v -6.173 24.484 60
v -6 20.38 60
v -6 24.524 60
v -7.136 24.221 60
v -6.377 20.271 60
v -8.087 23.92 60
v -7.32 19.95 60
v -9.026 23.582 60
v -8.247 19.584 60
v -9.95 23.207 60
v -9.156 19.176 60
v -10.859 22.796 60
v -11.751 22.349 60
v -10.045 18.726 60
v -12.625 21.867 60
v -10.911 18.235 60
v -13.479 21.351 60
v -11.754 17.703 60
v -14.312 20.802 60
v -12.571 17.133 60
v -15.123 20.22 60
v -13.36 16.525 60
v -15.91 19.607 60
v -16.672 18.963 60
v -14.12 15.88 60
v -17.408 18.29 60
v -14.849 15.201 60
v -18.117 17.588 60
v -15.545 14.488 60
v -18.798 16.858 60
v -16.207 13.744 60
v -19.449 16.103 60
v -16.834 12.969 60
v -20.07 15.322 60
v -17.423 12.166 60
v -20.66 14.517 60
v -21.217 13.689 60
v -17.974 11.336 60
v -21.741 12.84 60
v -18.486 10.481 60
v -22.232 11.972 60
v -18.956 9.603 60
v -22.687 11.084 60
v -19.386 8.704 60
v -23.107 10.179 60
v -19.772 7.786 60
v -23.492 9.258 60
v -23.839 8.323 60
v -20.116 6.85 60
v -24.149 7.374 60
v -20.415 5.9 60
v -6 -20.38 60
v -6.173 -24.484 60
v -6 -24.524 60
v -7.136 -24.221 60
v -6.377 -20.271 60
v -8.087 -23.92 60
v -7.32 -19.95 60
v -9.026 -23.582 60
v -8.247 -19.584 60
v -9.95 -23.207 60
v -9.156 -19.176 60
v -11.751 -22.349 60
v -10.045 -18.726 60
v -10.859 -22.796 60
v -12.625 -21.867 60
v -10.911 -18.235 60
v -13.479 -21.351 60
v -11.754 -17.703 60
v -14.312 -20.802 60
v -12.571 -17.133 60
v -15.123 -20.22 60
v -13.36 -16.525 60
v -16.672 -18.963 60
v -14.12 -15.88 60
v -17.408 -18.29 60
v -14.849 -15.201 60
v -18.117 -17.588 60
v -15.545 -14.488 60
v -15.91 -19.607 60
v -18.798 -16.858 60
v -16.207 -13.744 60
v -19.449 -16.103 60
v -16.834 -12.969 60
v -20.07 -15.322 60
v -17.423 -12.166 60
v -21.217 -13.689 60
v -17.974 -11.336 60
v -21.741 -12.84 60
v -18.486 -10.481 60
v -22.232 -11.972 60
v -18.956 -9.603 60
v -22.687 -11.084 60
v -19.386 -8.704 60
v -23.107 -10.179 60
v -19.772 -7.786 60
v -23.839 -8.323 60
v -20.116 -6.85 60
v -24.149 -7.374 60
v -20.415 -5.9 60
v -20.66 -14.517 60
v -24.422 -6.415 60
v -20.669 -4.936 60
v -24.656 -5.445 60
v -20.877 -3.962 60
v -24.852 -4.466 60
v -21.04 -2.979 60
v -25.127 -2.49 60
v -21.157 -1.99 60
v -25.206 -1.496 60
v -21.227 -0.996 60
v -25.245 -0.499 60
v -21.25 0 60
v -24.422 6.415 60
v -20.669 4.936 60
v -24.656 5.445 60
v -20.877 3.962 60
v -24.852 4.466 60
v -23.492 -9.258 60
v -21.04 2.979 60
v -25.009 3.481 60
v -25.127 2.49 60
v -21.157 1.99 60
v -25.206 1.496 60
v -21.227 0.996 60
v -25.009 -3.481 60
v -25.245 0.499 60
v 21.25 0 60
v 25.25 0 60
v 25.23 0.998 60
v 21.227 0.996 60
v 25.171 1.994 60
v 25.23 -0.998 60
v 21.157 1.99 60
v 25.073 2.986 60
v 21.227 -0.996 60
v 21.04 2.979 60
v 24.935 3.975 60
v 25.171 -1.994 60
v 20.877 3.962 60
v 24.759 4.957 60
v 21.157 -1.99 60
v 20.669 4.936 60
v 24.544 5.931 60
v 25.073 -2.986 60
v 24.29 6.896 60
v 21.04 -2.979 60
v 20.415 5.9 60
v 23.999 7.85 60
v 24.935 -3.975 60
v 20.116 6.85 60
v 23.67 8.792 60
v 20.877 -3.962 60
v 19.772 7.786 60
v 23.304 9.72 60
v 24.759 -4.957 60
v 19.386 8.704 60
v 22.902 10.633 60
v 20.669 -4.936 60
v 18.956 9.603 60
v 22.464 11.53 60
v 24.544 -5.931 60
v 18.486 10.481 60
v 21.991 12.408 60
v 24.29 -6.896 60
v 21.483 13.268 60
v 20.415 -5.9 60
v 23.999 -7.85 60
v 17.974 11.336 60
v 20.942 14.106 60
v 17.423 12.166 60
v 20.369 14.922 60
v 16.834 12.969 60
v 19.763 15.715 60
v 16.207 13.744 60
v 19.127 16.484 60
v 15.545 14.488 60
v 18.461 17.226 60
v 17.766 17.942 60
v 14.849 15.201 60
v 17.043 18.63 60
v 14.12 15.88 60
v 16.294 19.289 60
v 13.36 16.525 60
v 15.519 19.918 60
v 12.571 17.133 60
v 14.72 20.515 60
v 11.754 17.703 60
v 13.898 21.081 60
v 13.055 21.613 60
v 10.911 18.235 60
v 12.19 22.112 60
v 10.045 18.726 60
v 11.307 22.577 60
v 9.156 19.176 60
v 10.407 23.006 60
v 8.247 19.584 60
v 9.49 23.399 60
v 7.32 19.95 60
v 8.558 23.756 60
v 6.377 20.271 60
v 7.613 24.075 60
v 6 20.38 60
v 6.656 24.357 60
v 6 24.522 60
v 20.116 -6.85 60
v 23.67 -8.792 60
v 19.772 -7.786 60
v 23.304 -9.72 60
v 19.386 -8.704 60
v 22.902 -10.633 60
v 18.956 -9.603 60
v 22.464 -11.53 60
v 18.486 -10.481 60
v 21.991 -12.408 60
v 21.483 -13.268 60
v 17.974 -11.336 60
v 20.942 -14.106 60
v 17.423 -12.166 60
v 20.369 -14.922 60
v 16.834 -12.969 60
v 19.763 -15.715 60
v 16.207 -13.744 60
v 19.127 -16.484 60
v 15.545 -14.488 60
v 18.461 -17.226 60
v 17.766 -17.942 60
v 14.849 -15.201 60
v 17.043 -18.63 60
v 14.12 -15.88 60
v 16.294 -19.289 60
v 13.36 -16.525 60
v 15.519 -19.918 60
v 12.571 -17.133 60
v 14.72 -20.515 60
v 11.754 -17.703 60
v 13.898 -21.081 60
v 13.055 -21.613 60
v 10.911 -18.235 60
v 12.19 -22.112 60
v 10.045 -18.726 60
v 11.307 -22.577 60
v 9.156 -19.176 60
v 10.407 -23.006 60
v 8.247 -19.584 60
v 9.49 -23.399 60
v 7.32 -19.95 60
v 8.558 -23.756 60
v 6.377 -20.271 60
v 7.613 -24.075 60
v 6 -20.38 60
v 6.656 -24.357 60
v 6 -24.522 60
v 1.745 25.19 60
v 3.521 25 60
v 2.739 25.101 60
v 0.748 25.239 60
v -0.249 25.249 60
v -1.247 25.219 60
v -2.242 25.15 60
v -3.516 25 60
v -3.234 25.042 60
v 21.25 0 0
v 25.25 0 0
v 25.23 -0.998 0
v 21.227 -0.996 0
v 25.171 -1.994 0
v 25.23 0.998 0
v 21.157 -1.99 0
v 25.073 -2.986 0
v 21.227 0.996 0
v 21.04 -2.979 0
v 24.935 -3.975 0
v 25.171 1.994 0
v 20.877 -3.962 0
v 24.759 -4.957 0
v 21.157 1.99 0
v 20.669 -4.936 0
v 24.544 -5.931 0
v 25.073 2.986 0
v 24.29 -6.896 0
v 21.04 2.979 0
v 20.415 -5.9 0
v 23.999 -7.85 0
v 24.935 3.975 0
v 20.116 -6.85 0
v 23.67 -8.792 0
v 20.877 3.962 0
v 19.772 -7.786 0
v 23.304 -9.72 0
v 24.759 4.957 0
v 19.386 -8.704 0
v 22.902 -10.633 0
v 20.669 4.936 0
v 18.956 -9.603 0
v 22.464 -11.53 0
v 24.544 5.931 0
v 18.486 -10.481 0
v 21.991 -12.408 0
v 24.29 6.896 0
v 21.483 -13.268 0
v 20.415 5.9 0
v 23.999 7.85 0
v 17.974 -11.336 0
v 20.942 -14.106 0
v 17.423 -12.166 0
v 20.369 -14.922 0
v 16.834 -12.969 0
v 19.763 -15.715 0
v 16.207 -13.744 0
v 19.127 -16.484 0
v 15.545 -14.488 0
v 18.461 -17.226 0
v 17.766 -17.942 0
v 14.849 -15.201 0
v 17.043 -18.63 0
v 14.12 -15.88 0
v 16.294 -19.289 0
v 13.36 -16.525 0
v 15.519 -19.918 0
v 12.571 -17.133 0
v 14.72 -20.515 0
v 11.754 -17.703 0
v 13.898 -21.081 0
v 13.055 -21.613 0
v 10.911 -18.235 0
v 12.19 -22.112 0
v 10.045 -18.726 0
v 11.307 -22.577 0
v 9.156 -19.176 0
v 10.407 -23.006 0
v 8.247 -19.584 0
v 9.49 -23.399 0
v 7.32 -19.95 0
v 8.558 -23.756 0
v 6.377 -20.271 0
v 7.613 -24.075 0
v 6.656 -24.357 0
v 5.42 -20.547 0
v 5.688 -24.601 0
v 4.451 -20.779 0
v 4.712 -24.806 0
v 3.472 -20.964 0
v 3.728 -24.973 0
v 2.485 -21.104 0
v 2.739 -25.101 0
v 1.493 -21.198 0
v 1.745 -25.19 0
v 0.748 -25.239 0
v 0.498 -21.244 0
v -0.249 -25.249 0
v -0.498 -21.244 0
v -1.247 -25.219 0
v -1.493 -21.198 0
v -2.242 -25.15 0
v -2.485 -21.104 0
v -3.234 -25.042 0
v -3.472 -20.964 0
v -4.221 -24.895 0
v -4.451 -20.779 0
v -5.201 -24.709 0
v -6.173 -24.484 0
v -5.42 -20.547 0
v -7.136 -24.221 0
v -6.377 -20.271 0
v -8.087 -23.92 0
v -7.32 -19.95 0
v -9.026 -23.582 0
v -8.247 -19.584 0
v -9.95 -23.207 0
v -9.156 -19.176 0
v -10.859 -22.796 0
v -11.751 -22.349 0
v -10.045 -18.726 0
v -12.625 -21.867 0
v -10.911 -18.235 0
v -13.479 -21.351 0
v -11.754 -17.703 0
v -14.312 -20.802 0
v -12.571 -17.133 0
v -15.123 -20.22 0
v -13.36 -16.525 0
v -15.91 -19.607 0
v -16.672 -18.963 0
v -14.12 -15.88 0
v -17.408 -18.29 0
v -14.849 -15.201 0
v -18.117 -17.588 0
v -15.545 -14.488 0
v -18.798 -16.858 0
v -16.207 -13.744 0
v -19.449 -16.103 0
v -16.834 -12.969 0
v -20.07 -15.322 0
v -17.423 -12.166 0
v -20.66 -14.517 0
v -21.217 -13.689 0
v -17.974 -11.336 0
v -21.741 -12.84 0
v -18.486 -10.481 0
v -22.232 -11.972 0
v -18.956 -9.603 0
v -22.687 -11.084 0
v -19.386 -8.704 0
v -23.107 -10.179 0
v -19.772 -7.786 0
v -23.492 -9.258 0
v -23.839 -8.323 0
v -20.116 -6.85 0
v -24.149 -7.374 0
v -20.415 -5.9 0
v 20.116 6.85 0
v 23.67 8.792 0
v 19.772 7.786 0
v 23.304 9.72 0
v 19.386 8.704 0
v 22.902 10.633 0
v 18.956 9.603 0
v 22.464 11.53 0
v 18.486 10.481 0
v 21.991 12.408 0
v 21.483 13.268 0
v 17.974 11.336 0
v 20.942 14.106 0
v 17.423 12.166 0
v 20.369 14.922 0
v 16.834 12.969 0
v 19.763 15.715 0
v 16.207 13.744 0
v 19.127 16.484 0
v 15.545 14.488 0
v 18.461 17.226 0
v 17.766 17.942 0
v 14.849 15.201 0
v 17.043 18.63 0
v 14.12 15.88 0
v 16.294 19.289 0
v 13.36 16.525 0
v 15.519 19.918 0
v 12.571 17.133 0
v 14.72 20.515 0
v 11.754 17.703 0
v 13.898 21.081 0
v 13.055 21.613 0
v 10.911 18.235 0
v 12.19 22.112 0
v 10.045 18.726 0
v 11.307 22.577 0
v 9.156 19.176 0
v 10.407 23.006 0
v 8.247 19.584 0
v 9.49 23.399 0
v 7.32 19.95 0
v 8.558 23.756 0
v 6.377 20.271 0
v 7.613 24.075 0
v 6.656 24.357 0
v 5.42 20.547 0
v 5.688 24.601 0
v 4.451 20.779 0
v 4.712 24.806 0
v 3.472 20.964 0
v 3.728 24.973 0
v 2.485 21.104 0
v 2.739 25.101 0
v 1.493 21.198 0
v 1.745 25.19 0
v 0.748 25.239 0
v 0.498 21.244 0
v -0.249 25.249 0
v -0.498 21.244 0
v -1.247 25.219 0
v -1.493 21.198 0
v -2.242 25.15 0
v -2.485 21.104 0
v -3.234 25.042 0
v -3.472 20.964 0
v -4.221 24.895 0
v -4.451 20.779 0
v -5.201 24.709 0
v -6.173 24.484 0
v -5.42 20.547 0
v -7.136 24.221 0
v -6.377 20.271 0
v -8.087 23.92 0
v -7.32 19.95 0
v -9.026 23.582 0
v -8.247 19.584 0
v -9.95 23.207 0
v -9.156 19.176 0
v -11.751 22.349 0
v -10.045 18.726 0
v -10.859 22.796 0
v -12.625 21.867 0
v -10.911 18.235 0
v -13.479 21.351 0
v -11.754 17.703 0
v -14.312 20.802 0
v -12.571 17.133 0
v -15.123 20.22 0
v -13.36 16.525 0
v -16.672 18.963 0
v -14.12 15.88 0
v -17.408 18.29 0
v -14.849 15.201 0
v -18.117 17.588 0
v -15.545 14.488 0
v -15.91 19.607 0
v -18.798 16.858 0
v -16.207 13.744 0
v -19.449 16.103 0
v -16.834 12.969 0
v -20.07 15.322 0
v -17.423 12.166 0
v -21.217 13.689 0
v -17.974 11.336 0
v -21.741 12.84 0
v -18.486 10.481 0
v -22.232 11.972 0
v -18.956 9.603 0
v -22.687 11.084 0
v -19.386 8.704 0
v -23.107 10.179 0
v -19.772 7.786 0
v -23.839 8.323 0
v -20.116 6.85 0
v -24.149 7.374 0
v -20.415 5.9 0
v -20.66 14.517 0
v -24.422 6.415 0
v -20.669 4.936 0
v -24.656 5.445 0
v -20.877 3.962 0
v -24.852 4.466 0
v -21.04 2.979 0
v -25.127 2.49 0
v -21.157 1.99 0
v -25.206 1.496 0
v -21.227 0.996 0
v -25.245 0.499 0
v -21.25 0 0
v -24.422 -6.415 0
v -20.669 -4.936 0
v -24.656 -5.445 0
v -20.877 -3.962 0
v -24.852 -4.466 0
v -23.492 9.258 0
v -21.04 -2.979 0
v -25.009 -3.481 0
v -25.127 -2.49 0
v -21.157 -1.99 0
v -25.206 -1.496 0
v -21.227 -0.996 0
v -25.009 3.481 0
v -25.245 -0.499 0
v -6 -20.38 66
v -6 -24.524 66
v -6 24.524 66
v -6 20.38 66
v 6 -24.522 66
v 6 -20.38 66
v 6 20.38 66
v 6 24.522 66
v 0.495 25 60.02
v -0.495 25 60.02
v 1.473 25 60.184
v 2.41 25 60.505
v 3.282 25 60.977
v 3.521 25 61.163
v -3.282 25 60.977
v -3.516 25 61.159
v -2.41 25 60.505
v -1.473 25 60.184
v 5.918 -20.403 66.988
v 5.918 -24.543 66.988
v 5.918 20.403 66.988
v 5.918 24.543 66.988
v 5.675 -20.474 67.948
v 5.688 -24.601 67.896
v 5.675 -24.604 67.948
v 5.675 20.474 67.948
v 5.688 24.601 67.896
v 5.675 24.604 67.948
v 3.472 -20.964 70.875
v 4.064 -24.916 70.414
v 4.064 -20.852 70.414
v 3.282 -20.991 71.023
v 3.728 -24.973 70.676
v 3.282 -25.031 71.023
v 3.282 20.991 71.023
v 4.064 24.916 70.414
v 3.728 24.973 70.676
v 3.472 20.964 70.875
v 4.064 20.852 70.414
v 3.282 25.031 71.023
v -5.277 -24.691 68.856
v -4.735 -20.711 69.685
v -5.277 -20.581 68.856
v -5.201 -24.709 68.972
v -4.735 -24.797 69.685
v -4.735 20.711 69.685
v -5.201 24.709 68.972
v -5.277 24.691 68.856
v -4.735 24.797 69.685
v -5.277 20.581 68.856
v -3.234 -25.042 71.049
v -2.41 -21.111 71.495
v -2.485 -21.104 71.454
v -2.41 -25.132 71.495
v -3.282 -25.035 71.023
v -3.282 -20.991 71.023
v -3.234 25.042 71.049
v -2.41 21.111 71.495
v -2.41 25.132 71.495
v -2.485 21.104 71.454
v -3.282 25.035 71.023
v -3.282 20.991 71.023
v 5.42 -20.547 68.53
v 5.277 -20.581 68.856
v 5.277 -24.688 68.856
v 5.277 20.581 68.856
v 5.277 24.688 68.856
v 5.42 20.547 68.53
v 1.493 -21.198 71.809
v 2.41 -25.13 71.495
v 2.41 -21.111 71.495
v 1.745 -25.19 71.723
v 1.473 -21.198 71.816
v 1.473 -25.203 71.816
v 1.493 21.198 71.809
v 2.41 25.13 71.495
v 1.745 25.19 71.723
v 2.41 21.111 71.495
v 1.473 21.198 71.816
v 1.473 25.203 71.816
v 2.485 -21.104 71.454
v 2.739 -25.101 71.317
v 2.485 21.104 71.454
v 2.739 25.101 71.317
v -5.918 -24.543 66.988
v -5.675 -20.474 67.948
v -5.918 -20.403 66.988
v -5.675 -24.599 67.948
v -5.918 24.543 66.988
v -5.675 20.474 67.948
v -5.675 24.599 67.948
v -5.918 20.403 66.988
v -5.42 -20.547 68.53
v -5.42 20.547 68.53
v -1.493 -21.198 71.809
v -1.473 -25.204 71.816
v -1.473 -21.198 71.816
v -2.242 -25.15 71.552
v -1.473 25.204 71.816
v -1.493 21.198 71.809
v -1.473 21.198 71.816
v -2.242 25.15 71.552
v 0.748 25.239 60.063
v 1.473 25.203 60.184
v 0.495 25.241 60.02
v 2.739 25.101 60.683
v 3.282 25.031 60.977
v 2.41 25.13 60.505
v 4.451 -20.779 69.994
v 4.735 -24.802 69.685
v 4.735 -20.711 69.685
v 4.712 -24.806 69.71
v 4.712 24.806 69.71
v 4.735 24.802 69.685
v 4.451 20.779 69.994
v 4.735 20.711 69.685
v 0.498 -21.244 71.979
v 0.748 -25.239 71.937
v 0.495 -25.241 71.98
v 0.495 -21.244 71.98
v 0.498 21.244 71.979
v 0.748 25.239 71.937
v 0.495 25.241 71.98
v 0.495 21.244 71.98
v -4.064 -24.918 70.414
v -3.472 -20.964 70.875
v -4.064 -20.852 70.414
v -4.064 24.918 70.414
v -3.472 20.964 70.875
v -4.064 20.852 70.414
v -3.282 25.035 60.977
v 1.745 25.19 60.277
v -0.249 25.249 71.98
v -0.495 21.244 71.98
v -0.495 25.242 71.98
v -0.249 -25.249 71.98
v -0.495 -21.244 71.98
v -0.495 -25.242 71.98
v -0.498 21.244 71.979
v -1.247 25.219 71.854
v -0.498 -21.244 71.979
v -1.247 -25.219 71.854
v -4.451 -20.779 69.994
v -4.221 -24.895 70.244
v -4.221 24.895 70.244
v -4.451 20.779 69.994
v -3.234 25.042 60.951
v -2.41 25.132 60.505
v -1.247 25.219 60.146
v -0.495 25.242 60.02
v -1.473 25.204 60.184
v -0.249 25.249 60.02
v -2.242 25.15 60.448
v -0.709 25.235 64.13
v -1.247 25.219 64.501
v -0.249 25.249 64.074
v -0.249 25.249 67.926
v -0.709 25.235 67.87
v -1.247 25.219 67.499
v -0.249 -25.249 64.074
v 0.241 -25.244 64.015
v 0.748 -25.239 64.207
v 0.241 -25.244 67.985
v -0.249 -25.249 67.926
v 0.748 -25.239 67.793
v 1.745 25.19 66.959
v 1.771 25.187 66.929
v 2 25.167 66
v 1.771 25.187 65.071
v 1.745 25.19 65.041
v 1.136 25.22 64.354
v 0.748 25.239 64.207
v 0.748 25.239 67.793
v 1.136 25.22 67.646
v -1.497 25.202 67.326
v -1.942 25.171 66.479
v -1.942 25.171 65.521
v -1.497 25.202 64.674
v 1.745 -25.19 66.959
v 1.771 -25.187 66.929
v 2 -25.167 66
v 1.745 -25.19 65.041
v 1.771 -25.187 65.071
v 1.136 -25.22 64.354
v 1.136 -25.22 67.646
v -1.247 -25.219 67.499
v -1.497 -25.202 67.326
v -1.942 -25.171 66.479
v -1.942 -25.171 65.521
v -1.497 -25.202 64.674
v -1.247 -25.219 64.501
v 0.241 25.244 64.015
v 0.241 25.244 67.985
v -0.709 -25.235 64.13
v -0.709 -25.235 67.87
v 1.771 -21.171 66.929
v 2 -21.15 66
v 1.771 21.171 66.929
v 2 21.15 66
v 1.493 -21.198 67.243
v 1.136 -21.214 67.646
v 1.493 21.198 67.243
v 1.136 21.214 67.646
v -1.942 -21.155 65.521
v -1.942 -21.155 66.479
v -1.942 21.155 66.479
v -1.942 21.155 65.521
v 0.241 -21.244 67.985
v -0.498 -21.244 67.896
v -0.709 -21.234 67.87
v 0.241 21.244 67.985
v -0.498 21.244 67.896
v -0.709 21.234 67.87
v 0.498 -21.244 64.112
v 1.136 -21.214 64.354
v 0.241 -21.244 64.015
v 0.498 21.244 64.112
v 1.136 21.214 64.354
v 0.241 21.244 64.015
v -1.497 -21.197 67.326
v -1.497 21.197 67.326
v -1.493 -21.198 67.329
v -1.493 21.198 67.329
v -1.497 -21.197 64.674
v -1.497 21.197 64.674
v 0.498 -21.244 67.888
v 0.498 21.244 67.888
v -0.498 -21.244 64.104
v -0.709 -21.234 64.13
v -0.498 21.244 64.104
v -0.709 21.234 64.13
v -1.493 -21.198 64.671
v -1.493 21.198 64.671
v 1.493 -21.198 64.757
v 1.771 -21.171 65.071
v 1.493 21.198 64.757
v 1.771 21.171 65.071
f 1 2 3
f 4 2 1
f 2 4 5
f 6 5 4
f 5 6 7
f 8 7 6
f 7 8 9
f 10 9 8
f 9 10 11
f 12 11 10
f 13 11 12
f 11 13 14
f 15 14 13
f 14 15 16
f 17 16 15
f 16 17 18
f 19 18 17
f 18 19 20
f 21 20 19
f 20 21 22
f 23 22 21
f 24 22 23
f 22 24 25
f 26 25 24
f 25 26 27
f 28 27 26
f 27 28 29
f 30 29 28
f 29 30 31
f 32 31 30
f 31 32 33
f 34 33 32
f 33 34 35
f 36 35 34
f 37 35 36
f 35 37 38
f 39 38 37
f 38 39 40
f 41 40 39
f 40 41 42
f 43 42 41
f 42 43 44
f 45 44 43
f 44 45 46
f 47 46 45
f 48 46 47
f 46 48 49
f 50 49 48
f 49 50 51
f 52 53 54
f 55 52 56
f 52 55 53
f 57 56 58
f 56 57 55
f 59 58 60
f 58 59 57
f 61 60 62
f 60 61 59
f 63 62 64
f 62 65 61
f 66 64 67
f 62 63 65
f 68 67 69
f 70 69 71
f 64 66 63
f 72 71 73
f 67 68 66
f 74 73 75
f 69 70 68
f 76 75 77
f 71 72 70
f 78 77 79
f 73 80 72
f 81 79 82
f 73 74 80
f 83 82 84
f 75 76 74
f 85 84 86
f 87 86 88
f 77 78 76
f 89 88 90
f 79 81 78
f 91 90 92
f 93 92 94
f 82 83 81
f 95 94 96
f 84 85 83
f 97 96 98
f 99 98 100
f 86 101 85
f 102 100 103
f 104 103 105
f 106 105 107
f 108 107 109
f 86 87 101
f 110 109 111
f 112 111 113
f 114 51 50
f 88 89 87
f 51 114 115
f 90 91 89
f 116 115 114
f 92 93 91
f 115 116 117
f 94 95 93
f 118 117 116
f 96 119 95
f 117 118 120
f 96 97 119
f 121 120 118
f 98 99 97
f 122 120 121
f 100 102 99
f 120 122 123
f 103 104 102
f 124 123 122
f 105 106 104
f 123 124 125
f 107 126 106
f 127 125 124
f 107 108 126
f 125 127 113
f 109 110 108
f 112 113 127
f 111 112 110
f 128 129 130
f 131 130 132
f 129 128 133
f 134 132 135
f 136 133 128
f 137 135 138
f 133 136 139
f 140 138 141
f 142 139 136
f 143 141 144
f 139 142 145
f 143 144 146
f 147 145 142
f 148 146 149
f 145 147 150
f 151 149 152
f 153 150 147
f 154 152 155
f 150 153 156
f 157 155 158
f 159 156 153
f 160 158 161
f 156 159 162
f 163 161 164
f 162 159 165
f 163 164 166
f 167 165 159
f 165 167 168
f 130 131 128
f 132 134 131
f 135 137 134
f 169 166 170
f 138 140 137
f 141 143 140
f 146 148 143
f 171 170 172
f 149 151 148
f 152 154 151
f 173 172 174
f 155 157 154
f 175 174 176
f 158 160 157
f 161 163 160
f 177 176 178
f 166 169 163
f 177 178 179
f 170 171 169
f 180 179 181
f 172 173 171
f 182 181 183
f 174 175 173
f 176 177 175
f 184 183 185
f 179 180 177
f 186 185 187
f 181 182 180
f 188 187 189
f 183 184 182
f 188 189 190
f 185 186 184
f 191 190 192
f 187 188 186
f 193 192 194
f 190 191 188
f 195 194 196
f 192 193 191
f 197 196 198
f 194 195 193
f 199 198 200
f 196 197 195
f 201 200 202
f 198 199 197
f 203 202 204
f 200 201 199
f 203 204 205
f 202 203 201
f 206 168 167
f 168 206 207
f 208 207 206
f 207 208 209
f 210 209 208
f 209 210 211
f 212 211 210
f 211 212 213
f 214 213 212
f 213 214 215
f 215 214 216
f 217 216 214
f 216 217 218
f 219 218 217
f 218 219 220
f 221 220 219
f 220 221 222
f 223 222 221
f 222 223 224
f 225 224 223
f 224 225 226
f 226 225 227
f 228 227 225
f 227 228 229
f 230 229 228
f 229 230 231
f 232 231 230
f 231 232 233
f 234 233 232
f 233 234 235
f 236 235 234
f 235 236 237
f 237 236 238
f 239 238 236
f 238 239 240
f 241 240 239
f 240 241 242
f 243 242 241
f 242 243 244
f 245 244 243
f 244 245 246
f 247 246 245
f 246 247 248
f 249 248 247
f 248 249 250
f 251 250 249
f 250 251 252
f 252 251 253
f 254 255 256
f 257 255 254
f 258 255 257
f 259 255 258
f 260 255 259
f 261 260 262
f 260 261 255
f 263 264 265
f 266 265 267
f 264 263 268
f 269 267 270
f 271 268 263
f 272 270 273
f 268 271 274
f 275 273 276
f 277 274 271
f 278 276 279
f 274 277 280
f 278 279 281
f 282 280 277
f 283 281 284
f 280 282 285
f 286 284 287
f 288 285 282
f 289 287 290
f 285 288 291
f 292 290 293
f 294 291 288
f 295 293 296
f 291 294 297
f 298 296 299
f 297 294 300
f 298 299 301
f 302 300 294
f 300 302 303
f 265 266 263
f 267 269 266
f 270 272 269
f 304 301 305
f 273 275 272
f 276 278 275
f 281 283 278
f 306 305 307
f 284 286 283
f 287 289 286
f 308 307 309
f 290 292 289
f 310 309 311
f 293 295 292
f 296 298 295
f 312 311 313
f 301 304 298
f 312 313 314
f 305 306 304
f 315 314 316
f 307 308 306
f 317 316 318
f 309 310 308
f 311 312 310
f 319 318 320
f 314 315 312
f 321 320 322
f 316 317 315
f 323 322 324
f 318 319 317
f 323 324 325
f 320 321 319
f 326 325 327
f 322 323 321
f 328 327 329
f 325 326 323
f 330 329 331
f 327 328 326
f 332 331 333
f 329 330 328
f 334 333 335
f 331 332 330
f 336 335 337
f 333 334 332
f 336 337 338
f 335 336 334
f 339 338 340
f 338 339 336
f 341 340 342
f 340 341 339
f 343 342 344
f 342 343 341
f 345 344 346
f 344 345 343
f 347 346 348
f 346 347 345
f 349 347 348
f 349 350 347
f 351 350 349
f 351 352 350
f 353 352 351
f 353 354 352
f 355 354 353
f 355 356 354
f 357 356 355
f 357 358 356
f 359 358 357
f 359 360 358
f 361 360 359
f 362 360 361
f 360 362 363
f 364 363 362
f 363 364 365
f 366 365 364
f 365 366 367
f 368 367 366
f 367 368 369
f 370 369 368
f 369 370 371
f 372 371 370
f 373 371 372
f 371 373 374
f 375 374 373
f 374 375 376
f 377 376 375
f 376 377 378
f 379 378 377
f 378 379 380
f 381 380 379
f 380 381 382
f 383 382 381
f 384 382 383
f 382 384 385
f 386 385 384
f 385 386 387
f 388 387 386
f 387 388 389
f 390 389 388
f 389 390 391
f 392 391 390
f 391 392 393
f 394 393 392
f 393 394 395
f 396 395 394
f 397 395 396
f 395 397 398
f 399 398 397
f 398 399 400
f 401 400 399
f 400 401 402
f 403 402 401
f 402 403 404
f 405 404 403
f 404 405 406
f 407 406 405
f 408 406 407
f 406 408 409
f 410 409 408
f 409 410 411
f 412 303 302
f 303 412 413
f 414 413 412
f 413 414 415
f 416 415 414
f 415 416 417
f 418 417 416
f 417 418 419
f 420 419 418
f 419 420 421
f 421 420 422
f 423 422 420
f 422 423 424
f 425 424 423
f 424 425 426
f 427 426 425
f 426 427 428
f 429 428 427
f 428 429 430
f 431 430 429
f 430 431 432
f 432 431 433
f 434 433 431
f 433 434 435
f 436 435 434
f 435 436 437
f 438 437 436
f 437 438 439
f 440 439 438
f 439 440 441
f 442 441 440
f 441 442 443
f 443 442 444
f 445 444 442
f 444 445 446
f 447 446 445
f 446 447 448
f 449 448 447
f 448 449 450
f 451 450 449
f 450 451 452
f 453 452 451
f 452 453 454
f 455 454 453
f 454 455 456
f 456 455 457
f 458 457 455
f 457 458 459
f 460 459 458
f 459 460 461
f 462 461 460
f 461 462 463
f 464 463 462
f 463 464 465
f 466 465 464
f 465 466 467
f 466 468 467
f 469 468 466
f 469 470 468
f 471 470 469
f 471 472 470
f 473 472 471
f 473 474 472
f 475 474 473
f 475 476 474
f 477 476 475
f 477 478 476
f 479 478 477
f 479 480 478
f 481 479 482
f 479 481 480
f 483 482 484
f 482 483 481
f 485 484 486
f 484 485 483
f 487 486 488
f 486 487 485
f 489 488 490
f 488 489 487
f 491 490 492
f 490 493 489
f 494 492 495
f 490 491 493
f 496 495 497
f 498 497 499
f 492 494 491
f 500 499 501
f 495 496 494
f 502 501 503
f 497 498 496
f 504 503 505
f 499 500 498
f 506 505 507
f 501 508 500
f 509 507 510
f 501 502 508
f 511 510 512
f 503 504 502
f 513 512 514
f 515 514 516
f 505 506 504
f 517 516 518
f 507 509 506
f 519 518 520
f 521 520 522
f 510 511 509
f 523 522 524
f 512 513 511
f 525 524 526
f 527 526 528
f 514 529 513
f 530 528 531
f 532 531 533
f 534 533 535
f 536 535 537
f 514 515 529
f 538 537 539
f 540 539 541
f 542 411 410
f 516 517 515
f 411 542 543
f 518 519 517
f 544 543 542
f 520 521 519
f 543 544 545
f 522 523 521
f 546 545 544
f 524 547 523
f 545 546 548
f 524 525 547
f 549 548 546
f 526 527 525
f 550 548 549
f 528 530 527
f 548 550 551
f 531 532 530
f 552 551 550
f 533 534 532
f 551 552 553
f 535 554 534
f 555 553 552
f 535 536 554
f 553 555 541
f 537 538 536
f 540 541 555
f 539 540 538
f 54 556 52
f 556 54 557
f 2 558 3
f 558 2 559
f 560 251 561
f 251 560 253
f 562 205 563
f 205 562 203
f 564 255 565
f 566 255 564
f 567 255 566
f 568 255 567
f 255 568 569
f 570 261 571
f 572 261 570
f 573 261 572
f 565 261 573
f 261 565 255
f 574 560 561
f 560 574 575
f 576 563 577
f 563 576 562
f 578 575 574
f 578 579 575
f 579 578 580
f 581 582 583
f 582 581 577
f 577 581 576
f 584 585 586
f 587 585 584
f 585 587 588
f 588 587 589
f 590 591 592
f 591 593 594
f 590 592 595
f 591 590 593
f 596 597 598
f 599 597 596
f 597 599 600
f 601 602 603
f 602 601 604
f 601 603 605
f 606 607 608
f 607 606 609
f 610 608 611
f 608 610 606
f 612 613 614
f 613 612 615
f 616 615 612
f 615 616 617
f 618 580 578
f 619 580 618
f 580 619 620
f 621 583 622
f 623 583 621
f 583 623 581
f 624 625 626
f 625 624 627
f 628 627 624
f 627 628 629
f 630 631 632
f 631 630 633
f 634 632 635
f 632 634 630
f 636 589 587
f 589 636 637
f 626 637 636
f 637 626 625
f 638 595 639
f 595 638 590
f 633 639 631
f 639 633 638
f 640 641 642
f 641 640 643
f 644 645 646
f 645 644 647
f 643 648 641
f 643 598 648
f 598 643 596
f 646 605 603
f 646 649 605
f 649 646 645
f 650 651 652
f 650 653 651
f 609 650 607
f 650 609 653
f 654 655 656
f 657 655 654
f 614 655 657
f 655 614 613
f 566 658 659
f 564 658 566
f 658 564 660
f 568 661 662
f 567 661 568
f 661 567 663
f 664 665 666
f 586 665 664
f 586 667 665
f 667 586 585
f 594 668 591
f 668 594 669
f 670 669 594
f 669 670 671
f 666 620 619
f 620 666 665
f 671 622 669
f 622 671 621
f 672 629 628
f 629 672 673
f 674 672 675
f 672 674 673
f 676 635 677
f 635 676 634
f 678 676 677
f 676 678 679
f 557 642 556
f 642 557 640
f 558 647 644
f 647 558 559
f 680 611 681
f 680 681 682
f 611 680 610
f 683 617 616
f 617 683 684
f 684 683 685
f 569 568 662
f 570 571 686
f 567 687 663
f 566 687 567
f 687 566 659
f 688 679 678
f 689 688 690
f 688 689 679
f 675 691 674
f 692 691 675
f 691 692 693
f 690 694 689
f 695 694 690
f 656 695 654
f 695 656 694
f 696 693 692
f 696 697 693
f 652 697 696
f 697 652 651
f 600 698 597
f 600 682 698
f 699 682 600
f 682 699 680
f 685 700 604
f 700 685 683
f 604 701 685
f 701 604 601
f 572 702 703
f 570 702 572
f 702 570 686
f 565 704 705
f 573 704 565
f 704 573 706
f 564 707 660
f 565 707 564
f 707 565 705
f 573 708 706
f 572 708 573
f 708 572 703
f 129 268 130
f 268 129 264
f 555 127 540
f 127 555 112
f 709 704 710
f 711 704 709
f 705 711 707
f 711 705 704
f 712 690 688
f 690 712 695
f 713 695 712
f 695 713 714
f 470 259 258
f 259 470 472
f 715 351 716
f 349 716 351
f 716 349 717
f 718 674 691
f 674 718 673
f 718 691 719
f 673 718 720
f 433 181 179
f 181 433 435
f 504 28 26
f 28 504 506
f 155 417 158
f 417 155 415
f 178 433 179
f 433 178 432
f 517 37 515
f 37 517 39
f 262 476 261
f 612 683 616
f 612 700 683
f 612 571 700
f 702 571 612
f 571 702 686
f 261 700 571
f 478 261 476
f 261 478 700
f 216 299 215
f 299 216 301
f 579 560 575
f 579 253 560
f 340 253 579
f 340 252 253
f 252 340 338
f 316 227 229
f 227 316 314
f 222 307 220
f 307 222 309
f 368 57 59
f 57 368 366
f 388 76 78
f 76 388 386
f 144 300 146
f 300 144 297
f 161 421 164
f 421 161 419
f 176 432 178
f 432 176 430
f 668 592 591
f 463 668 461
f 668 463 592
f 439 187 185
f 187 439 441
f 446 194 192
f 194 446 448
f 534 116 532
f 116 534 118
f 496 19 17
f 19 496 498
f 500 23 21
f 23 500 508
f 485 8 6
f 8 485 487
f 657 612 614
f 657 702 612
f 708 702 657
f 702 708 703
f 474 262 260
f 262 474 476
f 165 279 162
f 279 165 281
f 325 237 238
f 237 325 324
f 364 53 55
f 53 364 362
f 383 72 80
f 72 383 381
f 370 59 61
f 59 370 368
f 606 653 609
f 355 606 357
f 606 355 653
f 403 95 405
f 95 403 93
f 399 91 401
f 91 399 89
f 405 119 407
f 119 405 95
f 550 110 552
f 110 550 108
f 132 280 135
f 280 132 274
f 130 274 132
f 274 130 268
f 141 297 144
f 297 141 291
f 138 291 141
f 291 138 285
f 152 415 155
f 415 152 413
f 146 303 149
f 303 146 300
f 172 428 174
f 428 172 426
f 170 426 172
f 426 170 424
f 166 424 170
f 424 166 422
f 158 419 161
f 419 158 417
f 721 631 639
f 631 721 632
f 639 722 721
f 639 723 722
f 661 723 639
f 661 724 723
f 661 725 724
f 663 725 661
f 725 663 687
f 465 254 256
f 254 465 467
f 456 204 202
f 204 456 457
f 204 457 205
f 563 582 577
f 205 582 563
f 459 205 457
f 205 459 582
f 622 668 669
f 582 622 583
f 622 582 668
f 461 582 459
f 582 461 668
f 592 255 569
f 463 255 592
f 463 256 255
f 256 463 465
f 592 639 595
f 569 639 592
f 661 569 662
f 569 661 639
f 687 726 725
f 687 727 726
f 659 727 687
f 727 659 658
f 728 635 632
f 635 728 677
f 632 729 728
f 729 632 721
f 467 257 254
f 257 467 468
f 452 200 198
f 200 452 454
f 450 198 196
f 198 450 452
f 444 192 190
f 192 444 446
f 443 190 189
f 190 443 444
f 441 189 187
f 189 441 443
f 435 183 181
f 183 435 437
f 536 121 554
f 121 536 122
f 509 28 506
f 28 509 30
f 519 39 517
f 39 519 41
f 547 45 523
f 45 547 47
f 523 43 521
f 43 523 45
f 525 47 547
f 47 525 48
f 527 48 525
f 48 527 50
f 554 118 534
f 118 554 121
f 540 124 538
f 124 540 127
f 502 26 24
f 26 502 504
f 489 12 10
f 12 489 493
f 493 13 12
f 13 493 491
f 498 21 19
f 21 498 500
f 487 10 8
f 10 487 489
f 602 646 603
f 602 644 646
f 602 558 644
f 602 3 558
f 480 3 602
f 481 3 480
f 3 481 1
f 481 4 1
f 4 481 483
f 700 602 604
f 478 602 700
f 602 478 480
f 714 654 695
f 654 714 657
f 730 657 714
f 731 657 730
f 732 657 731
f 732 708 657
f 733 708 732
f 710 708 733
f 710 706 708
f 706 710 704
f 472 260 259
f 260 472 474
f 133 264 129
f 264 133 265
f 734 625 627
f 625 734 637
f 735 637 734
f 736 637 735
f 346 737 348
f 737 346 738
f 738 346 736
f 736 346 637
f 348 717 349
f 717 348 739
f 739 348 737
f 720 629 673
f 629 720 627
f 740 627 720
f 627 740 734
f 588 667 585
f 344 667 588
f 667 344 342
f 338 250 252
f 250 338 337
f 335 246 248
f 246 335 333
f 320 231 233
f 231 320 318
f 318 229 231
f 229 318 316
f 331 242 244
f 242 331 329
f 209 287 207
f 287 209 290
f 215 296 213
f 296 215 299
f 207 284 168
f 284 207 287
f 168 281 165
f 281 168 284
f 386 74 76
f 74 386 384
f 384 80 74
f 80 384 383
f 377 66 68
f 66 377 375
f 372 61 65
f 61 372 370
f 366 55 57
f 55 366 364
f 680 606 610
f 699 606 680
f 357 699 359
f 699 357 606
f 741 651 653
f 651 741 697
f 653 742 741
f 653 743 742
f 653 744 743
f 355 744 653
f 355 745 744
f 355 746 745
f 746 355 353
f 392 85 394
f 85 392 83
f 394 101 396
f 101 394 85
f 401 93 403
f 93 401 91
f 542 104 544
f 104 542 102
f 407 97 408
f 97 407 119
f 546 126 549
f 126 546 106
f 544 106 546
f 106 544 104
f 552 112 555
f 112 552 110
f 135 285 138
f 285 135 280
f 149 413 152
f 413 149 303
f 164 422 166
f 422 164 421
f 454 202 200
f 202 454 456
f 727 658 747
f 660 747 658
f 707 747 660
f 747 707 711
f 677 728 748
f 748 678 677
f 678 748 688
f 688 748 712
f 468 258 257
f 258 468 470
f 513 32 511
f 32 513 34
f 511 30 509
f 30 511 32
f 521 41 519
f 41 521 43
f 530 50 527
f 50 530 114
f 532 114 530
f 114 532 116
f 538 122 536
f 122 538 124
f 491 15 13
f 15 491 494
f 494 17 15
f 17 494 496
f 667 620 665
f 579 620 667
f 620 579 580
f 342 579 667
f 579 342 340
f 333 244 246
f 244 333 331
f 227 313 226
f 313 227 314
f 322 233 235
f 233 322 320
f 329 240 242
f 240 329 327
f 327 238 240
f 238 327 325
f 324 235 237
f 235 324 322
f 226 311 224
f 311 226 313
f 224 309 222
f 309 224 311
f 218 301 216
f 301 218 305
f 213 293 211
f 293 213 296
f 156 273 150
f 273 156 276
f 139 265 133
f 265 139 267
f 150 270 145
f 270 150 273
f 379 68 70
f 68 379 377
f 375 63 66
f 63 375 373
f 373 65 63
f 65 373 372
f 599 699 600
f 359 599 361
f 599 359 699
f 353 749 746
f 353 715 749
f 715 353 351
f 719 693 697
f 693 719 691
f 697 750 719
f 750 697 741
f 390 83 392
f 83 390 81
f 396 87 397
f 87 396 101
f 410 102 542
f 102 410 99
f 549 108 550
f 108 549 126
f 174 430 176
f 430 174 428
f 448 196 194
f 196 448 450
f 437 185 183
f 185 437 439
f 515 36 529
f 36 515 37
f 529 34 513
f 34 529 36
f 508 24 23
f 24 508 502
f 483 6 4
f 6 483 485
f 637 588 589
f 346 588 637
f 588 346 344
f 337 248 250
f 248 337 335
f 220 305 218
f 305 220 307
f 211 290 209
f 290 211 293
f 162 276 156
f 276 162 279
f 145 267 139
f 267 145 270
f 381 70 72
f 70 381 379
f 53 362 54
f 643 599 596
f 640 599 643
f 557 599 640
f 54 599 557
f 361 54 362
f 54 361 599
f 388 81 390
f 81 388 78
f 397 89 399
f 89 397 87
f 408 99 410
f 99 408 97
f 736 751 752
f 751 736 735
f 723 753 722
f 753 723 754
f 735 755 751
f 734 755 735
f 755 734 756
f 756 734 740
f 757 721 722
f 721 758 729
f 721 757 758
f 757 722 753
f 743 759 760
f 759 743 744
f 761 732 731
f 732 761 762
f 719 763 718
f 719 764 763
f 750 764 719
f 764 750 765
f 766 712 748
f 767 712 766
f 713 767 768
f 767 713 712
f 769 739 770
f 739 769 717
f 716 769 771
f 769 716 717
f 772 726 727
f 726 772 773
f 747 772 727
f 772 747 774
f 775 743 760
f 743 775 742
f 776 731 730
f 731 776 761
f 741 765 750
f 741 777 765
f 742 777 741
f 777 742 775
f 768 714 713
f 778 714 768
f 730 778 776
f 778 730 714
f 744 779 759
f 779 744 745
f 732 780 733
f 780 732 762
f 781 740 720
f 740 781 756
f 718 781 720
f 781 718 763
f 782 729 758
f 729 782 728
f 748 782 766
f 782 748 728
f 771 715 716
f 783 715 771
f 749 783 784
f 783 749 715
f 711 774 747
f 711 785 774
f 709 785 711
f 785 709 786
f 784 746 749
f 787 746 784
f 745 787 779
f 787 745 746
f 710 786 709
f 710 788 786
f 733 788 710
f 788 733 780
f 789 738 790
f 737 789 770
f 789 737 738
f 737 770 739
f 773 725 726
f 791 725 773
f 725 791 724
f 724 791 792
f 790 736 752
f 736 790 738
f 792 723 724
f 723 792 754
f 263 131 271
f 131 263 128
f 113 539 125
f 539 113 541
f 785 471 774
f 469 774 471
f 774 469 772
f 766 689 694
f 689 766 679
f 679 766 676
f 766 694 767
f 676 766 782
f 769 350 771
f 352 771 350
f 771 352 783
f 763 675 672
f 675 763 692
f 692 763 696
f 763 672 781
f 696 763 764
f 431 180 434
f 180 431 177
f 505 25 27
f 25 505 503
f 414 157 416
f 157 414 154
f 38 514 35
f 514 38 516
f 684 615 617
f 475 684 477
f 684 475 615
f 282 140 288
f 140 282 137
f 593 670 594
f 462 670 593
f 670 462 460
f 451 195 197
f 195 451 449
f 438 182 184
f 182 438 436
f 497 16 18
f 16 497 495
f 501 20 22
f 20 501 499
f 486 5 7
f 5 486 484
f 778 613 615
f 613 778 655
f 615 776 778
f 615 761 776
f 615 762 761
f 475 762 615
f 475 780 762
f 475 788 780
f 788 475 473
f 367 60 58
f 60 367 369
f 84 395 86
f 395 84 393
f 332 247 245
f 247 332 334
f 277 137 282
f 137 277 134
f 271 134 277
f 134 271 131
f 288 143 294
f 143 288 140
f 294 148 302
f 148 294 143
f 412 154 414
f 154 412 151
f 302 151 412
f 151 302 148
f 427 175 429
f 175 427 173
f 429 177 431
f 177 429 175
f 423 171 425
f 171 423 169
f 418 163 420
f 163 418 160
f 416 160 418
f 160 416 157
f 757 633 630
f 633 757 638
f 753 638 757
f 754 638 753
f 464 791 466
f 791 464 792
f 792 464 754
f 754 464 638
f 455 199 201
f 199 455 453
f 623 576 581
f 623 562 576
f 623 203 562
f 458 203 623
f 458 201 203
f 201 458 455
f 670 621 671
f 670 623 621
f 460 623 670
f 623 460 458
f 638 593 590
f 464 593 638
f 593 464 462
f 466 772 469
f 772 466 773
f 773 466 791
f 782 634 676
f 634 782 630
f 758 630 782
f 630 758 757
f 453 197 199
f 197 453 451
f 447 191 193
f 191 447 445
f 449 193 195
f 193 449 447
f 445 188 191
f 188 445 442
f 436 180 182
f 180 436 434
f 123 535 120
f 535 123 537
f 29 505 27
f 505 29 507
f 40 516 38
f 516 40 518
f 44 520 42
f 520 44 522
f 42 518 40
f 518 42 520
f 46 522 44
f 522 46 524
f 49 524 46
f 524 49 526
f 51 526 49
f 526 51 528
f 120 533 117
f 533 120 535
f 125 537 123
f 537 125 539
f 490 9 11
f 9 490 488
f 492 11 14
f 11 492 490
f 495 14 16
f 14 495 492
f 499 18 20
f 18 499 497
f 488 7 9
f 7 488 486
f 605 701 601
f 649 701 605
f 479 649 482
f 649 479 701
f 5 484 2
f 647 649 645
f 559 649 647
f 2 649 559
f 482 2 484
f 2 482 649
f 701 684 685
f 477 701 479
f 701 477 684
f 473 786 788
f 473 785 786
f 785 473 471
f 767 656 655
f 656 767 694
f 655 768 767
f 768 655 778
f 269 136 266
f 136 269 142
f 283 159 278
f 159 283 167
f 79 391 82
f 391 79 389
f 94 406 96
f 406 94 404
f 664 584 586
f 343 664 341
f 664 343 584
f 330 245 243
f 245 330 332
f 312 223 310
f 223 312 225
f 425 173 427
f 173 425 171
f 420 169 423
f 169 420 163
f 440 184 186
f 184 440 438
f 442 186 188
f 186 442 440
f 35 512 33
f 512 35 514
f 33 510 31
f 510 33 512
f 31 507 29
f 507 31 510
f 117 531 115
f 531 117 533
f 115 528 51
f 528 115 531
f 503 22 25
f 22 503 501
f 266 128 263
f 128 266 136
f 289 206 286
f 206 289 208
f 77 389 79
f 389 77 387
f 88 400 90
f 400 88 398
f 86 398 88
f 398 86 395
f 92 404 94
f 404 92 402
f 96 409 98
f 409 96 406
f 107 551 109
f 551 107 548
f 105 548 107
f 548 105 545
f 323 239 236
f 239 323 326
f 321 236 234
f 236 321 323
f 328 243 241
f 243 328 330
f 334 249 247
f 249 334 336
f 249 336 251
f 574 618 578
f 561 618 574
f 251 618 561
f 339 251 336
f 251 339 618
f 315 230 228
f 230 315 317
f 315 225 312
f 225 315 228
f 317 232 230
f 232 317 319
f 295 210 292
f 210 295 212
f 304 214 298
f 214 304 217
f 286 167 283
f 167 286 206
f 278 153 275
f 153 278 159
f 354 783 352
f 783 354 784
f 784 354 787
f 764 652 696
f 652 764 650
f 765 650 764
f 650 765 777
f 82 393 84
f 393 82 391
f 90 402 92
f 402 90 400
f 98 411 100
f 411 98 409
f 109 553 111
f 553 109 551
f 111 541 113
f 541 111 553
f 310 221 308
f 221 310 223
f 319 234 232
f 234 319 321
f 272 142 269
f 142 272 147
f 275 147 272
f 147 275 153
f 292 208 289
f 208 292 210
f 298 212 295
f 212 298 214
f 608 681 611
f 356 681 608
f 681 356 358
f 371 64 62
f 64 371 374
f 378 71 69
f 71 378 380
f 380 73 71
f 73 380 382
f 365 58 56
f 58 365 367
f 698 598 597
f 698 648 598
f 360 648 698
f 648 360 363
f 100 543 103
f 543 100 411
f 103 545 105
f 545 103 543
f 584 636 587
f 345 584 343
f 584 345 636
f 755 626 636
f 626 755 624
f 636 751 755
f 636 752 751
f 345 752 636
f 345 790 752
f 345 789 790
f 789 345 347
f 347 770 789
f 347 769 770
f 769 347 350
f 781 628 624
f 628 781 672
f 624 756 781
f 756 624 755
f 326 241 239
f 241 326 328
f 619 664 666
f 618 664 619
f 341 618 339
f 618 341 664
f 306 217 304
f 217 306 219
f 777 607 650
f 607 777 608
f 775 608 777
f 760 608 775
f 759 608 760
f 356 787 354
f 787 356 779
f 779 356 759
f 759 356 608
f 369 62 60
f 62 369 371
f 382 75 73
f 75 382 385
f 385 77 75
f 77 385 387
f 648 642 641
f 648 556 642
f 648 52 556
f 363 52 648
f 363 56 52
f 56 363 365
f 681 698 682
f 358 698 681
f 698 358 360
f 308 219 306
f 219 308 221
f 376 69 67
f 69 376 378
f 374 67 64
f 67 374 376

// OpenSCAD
$fa = 1;
$fs = 1;




difference() {	

	union(){
		translate([-35,-35,0]){
			cube([70,70,60]);
		}
		translate([-6,-35,60-6]){
			cube([12,60,12]);
		}
		translate([0, 26,60+6]){
			rotate([90,0,0]){
				cylinder(60, d=12);
			}
		}
	}

	translate([0, 26,60+6]){
			rotate([90,0,0]){
				cylinder(60, d=4);
			}
		}

	translate([0,0,-10]){
		cylinder(1000, d=42.5, center=[0,0,-10]);
	}
	difference() {
		translate([0,0,-10]){
			cylinder(1000, d=200);
		}
		translate([0,0,-11]){
			cylinder(1005, d=42.5+8 );
		}
	}

}
